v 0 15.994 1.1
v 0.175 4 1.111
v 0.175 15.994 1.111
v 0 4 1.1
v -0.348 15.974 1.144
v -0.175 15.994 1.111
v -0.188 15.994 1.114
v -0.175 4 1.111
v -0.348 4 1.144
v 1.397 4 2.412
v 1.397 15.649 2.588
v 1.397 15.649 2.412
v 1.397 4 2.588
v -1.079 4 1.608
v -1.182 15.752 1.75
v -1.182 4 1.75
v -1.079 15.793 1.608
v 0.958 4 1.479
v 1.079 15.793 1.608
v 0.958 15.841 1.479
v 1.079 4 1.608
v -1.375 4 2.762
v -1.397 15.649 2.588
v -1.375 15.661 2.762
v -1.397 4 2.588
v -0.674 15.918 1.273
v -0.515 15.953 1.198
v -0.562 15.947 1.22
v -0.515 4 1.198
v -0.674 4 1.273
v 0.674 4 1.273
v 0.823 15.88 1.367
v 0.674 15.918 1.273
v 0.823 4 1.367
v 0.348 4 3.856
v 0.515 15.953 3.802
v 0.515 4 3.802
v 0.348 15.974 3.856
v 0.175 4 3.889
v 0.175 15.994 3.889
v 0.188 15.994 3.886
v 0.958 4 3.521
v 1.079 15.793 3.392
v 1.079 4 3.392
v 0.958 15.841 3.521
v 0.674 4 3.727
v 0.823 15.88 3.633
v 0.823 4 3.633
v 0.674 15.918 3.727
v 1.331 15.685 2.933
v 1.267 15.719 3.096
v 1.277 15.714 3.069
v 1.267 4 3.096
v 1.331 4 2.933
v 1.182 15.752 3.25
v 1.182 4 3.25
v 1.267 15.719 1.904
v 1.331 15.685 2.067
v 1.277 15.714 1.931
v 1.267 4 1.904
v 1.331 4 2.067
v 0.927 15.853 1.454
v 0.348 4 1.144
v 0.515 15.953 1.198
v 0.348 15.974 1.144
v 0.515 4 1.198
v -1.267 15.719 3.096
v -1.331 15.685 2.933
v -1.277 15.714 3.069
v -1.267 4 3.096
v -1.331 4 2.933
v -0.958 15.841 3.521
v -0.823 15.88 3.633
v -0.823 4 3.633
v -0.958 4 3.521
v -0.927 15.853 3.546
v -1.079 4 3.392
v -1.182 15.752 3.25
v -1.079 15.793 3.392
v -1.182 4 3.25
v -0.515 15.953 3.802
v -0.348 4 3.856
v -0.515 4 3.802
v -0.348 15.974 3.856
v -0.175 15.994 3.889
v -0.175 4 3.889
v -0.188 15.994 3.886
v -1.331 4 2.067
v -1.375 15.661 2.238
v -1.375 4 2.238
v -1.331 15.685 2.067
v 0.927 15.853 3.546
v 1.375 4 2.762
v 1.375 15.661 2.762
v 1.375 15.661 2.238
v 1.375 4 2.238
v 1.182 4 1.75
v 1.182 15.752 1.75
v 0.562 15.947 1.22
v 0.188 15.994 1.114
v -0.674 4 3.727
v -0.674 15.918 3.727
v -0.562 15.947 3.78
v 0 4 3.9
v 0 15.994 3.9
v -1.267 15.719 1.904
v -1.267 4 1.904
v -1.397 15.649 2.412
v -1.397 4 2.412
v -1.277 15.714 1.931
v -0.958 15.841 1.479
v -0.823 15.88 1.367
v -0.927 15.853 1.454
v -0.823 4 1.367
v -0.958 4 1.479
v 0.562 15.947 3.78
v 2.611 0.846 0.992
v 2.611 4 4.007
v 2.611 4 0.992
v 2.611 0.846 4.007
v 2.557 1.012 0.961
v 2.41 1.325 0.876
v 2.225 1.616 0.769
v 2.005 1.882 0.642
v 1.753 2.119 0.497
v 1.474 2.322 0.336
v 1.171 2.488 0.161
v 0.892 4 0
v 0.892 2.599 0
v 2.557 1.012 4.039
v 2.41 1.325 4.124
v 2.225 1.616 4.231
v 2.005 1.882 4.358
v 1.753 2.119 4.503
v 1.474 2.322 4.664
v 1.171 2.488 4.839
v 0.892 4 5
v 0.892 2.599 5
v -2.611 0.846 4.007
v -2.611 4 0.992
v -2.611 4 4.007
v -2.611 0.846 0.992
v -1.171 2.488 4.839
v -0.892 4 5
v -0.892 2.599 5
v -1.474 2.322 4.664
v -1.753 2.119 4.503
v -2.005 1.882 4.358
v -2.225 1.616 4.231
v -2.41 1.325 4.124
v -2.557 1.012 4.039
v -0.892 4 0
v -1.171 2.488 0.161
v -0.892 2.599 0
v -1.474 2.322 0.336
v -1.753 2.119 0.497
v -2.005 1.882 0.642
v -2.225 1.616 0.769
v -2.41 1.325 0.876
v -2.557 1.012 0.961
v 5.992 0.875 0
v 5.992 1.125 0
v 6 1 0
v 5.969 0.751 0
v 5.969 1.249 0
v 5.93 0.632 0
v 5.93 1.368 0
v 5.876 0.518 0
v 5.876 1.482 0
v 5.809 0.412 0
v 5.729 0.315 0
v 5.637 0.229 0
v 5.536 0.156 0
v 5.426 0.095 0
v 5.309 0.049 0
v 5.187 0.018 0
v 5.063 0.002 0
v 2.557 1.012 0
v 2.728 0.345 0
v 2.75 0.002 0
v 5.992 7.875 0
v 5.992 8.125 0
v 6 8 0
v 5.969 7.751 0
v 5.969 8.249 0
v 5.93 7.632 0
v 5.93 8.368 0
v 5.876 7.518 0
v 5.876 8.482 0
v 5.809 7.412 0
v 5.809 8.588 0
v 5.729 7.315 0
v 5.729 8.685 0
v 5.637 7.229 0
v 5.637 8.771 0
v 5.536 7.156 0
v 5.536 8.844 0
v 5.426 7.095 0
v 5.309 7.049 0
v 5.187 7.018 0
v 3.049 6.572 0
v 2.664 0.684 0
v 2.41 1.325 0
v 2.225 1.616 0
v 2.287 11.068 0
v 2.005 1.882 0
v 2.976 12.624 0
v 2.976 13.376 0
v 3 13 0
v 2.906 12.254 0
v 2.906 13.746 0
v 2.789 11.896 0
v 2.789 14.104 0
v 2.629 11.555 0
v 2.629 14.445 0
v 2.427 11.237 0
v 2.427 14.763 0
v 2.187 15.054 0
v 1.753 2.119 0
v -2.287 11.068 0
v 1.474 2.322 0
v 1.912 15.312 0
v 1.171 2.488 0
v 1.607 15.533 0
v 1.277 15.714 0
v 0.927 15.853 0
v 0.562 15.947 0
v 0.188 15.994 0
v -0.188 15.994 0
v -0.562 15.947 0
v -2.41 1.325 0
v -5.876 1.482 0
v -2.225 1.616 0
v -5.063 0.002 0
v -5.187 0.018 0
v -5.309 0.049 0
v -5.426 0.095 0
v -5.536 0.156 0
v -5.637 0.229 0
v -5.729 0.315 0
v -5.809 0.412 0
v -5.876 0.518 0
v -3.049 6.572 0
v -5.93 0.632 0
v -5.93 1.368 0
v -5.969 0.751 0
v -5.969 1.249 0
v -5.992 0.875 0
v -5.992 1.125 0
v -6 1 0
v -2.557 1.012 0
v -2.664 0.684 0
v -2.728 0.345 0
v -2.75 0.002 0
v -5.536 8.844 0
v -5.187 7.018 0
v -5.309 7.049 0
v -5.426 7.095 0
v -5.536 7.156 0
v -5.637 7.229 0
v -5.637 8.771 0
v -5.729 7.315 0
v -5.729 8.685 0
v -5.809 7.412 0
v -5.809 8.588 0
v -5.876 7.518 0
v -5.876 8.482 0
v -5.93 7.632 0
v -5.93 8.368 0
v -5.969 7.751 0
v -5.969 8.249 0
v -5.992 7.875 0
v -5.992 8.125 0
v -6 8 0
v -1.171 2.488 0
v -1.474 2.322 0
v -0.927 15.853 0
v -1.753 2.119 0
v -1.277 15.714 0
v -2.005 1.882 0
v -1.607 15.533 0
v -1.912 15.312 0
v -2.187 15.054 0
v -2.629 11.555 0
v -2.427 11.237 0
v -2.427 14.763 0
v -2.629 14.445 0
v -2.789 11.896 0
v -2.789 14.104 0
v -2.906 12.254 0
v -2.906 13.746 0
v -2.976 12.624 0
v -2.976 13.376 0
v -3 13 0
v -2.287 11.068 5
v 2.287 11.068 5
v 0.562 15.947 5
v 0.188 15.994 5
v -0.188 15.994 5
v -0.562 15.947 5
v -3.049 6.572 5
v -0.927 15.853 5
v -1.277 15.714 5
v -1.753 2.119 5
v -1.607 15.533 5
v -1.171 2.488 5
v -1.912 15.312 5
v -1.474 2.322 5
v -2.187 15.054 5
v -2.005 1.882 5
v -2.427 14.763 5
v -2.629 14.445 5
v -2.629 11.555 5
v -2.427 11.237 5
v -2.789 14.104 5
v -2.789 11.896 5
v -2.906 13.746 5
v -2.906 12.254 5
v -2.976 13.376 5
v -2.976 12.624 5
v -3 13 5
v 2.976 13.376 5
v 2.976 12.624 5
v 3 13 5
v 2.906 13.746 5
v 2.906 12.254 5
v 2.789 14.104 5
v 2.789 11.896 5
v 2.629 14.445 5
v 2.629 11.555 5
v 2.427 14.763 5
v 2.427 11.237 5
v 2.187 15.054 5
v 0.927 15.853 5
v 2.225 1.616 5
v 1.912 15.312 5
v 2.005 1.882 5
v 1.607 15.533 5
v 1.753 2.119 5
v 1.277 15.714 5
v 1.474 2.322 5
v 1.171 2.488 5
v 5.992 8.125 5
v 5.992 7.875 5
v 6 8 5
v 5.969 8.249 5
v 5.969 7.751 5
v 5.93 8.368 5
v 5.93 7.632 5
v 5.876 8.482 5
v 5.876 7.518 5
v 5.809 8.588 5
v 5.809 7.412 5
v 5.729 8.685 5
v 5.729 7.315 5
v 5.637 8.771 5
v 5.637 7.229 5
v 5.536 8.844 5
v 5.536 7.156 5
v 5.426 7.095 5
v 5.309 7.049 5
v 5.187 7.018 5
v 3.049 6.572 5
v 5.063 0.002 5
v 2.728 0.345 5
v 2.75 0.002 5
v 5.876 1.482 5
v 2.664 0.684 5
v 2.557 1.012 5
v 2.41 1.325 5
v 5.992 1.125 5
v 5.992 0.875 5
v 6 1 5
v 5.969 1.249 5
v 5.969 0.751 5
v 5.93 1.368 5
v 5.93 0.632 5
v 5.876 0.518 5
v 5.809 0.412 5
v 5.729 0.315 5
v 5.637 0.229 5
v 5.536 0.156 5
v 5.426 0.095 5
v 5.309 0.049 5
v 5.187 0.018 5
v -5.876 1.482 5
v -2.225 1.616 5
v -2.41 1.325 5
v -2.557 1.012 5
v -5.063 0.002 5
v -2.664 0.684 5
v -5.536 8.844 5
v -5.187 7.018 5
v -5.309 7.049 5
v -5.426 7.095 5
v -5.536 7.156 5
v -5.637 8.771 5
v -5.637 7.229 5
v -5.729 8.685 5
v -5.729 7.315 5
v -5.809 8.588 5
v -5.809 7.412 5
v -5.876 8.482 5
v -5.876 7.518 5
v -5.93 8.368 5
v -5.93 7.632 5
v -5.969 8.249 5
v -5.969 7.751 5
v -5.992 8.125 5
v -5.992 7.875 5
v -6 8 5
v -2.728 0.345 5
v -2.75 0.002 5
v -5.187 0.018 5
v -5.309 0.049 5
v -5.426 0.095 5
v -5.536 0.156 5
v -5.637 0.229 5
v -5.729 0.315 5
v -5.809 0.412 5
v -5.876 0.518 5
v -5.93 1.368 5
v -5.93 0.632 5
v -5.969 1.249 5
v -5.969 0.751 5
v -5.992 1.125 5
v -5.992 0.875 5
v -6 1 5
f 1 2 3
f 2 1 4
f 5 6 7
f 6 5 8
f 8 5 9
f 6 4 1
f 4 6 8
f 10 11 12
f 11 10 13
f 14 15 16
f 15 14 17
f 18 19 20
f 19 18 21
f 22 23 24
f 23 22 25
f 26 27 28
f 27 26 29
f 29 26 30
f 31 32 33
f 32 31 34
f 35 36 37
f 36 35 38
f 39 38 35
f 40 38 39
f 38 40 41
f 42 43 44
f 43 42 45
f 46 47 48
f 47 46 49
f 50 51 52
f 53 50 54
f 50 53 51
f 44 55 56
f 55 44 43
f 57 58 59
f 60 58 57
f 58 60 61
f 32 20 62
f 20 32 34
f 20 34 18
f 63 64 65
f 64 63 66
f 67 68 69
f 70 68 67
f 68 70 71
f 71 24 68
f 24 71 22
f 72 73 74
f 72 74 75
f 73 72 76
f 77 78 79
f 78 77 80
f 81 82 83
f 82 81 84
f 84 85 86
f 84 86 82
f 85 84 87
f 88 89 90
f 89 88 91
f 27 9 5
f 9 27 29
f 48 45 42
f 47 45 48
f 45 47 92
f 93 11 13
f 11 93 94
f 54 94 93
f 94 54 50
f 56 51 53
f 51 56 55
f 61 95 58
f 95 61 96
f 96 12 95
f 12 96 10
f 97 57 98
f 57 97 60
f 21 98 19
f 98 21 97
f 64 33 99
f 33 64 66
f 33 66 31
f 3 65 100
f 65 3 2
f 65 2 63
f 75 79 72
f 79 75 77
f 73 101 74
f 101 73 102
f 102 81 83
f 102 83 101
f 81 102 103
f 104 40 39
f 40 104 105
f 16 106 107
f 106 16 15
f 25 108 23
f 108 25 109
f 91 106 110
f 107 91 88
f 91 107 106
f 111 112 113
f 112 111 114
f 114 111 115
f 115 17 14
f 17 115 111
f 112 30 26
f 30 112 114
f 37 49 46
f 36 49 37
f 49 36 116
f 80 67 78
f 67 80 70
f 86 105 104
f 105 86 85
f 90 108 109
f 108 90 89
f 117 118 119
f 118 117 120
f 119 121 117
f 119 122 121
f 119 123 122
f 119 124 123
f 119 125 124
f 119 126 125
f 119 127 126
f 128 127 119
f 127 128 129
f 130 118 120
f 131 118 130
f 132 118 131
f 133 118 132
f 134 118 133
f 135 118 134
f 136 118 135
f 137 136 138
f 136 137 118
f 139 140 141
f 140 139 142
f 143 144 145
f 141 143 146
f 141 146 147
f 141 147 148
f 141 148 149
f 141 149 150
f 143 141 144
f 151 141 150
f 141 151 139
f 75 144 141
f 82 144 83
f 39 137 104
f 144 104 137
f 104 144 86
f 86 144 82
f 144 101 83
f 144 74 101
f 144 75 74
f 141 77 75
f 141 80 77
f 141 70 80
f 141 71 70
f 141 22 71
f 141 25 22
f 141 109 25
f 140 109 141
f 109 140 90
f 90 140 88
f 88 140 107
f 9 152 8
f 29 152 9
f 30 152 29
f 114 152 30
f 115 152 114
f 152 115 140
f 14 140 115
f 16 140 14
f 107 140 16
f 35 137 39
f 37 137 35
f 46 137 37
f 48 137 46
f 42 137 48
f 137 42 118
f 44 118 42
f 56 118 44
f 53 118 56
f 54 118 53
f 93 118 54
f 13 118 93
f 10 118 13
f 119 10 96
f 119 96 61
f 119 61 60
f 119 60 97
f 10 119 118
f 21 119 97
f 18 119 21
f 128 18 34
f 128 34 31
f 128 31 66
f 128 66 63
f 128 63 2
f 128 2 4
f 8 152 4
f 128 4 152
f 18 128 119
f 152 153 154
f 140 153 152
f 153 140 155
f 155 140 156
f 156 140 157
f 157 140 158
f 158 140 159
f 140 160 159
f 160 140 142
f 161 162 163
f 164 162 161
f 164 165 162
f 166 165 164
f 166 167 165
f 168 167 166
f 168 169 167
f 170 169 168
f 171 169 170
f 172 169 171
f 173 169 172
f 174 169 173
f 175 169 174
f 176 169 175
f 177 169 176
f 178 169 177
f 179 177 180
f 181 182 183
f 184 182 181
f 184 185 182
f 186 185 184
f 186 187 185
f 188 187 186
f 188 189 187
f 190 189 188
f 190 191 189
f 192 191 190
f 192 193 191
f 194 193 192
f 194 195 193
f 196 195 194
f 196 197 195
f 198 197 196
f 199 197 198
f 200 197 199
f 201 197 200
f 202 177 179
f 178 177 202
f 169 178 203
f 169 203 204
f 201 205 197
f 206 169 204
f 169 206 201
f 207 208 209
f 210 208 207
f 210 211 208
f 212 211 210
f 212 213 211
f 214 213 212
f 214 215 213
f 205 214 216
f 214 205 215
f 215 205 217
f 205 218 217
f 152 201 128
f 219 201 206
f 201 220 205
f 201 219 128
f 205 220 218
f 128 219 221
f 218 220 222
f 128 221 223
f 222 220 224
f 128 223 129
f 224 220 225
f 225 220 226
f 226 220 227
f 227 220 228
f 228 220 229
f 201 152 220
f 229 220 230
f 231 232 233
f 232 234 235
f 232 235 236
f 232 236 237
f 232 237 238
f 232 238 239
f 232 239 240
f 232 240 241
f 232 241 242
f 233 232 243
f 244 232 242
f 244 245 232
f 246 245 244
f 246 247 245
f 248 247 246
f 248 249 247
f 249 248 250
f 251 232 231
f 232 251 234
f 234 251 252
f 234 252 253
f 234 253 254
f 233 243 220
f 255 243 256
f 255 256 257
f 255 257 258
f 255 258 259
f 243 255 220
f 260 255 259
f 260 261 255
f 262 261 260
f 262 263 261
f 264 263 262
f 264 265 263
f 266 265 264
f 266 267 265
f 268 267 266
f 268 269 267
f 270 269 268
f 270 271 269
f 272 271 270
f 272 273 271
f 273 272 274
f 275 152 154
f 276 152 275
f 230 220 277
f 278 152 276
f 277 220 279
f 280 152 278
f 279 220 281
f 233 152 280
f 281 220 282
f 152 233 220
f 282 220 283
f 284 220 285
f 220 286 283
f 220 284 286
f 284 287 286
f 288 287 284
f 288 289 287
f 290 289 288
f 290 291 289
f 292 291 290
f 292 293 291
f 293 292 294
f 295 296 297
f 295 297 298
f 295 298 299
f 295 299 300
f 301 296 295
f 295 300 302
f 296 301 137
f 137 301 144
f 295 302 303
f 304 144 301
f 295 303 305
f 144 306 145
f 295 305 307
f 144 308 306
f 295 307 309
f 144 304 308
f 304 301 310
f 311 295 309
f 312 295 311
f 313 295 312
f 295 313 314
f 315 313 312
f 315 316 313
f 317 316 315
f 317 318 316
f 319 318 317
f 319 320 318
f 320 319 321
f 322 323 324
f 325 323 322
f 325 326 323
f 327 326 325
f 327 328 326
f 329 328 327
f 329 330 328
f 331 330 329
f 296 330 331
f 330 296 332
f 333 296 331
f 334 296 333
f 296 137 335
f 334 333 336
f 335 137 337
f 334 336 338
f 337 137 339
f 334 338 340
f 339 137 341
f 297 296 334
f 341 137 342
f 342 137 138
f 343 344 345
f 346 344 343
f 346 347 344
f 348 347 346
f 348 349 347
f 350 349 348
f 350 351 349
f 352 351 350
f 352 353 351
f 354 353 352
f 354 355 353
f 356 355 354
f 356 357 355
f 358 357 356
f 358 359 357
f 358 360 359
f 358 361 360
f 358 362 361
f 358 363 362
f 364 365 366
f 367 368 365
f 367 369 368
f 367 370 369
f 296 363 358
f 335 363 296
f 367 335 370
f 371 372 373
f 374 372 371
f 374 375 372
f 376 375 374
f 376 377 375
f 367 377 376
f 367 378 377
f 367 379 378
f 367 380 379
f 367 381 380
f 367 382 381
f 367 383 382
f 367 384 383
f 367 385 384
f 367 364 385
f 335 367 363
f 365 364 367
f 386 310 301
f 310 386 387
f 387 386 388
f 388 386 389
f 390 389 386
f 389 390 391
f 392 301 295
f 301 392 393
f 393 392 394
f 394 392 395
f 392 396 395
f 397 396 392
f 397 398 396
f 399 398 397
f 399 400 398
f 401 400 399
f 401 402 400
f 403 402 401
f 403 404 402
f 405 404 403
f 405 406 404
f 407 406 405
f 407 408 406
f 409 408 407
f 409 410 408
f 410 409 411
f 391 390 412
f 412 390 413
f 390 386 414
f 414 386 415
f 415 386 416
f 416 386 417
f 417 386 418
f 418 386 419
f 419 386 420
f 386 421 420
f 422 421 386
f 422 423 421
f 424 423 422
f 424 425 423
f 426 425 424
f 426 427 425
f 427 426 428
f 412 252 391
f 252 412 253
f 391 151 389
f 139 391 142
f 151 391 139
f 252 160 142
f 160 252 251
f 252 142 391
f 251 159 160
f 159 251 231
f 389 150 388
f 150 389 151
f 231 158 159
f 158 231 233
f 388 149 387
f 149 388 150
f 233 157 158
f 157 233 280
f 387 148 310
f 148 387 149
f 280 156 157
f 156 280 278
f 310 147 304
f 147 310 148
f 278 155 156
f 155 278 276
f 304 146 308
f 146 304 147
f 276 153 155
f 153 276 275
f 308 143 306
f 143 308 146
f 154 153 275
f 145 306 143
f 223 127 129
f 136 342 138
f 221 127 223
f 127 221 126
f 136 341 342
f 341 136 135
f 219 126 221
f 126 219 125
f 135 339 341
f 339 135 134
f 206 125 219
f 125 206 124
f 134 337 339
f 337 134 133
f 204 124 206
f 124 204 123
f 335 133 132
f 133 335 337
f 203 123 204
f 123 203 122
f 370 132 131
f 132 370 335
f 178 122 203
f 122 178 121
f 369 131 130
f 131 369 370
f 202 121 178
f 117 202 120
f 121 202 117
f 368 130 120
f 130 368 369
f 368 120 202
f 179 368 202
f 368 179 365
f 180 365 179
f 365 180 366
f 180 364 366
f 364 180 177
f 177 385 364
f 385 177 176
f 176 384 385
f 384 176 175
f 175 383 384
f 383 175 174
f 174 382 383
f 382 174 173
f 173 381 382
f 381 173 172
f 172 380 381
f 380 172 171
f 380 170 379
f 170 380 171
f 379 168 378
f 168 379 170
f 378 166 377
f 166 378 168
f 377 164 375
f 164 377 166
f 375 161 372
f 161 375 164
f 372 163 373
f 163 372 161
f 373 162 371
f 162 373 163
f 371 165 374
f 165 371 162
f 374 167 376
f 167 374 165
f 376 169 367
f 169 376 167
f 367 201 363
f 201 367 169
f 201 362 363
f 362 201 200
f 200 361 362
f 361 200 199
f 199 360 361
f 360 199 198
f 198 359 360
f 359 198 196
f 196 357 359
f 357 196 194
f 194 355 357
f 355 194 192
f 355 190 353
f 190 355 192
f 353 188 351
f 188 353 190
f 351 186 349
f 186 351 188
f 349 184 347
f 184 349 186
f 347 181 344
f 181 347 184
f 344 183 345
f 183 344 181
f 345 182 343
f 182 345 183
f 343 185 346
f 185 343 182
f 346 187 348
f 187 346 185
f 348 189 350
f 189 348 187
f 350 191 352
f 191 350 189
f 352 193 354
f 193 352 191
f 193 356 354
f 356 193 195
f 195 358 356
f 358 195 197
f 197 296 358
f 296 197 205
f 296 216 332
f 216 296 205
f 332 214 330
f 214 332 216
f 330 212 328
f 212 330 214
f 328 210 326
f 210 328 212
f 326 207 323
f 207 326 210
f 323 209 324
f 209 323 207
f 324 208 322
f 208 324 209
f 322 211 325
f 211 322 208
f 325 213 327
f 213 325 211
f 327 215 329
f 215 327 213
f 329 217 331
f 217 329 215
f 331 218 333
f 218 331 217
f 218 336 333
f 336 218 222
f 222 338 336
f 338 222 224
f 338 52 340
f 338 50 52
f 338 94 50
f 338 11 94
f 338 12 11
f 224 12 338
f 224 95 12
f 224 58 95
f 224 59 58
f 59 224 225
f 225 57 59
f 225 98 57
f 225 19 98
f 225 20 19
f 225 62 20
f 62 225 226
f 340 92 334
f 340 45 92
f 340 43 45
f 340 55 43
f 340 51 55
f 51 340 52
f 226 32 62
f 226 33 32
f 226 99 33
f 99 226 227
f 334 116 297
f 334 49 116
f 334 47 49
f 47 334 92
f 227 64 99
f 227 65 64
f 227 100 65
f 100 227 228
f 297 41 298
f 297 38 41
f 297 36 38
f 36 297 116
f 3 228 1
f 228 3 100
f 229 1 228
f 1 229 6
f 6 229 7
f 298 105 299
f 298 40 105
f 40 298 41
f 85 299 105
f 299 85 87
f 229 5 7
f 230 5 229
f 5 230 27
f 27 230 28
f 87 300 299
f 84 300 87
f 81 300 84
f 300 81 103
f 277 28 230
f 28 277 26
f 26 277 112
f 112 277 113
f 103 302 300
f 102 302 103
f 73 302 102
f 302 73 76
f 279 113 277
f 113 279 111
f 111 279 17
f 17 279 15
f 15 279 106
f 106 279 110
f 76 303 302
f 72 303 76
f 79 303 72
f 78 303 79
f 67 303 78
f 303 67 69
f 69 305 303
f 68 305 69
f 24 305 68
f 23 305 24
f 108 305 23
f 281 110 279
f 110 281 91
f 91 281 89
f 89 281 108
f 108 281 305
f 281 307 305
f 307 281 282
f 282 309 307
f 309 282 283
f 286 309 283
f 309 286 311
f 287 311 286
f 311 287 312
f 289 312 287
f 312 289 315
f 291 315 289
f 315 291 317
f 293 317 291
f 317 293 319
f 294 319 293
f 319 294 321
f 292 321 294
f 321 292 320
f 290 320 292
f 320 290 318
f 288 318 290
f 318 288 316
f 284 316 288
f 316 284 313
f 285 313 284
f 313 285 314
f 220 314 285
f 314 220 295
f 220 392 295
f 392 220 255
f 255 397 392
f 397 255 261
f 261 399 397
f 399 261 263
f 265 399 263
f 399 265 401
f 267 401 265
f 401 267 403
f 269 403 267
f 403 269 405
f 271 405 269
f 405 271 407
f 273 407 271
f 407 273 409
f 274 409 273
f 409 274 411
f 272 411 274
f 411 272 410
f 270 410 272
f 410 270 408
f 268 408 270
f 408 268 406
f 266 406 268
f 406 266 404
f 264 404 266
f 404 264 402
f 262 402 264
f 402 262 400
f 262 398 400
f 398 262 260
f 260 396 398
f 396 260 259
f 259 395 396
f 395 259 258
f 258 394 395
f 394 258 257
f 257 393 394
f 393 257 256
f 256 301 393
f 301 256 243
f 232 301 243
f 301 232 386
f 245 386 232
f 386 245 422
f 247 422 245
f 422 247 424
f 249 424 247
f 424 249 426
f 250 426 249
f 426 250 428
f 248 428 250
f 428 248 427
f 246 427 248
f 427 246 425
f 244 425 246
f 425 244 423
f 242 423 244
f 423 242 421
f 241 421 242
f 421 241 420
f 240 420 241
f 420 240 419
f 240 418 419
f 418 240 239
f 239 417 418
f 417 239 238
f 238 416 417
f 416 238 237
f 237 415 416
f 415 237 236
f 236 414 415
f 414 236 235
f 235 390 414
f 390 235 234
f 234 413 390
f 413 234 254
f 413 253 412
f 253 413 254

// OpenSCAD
// author: clayb.rpi@gmail.com
// date: 2012-05-05
// units: mm
// description: a meeple character for games

//LICENSE Creative Commons
//AUTHOR:
//https://www.thingiverse.com/buckyball
//REPO
//https://www.thingiverse.com/thing:22696/remixes

//2024-12-22
//refactored var and function
//adjusted dimensions
//Made a meeple with a vertical through hole to have pins

cn_width = 12;
cn_height = 16;
cn_thickness = 5;
cd_head = 6;
cr_smooth = 1;
cd_foot_hole = 5.5;

cd_hole_through = 2.5+0.3;
//2/sqrt(3)*5
cd_nut = 5.73+0.3;
cl_nut = 4;

$fn=50;

module meeple_with_hole()
{
	difference()
	{
		union()
		{
			meeple();
		}
		union()
		{
			//M2.5 bolt through hole
			translate([0,0,cn_thickness/2])
			rotate([0,90,90])
			linear_extrude(cn_height)
			circle(r=cd_hole_through/2);
			//M2.5 nut hex hole
			translate([0,0,cn_thickness/2])
			rotate([0,90,90])
			linear_extrude(cl_nut)
			circle(r=cd_nut/2,$fn=6);
		}
	}


}

module meeple()
{
	linear_extrude(cn_thickness)
	union()
	{
		// head
		translate([0, cn_height - cd_head / 2])
		circle(r=cd_head / 2);

		// body
		difference()
		{
			hull()
			{
				translate([-(cn_width /2 - cr_smooth), cr_smooth])
				circle(r=cr_smooth);

				translate([cn_width /2 - cr_smooth, cr_smooth])
				circle(r=cr_smooth);

				translate([0, cn_height - cd_head])
				circle(r=cr_smooth);
			}

			// foot cutout
			circle(r=cd_foot_hole / 2);
		}

		// arms
		hull()
		{
			translate([cn_width / 2 - cr_smooth, cn_height / 2])
			circle(r=cr_smooth);

			translate([-cn_width / 2 + cr_smooth, cn_height / 2])
			circle(r=cr_smooth);

			translate([0, cn_height / 2 + cr_smooth])
			circle(r=cd_head / 2);
		}
	}
}

//meeple();
meeple_with_hole();
